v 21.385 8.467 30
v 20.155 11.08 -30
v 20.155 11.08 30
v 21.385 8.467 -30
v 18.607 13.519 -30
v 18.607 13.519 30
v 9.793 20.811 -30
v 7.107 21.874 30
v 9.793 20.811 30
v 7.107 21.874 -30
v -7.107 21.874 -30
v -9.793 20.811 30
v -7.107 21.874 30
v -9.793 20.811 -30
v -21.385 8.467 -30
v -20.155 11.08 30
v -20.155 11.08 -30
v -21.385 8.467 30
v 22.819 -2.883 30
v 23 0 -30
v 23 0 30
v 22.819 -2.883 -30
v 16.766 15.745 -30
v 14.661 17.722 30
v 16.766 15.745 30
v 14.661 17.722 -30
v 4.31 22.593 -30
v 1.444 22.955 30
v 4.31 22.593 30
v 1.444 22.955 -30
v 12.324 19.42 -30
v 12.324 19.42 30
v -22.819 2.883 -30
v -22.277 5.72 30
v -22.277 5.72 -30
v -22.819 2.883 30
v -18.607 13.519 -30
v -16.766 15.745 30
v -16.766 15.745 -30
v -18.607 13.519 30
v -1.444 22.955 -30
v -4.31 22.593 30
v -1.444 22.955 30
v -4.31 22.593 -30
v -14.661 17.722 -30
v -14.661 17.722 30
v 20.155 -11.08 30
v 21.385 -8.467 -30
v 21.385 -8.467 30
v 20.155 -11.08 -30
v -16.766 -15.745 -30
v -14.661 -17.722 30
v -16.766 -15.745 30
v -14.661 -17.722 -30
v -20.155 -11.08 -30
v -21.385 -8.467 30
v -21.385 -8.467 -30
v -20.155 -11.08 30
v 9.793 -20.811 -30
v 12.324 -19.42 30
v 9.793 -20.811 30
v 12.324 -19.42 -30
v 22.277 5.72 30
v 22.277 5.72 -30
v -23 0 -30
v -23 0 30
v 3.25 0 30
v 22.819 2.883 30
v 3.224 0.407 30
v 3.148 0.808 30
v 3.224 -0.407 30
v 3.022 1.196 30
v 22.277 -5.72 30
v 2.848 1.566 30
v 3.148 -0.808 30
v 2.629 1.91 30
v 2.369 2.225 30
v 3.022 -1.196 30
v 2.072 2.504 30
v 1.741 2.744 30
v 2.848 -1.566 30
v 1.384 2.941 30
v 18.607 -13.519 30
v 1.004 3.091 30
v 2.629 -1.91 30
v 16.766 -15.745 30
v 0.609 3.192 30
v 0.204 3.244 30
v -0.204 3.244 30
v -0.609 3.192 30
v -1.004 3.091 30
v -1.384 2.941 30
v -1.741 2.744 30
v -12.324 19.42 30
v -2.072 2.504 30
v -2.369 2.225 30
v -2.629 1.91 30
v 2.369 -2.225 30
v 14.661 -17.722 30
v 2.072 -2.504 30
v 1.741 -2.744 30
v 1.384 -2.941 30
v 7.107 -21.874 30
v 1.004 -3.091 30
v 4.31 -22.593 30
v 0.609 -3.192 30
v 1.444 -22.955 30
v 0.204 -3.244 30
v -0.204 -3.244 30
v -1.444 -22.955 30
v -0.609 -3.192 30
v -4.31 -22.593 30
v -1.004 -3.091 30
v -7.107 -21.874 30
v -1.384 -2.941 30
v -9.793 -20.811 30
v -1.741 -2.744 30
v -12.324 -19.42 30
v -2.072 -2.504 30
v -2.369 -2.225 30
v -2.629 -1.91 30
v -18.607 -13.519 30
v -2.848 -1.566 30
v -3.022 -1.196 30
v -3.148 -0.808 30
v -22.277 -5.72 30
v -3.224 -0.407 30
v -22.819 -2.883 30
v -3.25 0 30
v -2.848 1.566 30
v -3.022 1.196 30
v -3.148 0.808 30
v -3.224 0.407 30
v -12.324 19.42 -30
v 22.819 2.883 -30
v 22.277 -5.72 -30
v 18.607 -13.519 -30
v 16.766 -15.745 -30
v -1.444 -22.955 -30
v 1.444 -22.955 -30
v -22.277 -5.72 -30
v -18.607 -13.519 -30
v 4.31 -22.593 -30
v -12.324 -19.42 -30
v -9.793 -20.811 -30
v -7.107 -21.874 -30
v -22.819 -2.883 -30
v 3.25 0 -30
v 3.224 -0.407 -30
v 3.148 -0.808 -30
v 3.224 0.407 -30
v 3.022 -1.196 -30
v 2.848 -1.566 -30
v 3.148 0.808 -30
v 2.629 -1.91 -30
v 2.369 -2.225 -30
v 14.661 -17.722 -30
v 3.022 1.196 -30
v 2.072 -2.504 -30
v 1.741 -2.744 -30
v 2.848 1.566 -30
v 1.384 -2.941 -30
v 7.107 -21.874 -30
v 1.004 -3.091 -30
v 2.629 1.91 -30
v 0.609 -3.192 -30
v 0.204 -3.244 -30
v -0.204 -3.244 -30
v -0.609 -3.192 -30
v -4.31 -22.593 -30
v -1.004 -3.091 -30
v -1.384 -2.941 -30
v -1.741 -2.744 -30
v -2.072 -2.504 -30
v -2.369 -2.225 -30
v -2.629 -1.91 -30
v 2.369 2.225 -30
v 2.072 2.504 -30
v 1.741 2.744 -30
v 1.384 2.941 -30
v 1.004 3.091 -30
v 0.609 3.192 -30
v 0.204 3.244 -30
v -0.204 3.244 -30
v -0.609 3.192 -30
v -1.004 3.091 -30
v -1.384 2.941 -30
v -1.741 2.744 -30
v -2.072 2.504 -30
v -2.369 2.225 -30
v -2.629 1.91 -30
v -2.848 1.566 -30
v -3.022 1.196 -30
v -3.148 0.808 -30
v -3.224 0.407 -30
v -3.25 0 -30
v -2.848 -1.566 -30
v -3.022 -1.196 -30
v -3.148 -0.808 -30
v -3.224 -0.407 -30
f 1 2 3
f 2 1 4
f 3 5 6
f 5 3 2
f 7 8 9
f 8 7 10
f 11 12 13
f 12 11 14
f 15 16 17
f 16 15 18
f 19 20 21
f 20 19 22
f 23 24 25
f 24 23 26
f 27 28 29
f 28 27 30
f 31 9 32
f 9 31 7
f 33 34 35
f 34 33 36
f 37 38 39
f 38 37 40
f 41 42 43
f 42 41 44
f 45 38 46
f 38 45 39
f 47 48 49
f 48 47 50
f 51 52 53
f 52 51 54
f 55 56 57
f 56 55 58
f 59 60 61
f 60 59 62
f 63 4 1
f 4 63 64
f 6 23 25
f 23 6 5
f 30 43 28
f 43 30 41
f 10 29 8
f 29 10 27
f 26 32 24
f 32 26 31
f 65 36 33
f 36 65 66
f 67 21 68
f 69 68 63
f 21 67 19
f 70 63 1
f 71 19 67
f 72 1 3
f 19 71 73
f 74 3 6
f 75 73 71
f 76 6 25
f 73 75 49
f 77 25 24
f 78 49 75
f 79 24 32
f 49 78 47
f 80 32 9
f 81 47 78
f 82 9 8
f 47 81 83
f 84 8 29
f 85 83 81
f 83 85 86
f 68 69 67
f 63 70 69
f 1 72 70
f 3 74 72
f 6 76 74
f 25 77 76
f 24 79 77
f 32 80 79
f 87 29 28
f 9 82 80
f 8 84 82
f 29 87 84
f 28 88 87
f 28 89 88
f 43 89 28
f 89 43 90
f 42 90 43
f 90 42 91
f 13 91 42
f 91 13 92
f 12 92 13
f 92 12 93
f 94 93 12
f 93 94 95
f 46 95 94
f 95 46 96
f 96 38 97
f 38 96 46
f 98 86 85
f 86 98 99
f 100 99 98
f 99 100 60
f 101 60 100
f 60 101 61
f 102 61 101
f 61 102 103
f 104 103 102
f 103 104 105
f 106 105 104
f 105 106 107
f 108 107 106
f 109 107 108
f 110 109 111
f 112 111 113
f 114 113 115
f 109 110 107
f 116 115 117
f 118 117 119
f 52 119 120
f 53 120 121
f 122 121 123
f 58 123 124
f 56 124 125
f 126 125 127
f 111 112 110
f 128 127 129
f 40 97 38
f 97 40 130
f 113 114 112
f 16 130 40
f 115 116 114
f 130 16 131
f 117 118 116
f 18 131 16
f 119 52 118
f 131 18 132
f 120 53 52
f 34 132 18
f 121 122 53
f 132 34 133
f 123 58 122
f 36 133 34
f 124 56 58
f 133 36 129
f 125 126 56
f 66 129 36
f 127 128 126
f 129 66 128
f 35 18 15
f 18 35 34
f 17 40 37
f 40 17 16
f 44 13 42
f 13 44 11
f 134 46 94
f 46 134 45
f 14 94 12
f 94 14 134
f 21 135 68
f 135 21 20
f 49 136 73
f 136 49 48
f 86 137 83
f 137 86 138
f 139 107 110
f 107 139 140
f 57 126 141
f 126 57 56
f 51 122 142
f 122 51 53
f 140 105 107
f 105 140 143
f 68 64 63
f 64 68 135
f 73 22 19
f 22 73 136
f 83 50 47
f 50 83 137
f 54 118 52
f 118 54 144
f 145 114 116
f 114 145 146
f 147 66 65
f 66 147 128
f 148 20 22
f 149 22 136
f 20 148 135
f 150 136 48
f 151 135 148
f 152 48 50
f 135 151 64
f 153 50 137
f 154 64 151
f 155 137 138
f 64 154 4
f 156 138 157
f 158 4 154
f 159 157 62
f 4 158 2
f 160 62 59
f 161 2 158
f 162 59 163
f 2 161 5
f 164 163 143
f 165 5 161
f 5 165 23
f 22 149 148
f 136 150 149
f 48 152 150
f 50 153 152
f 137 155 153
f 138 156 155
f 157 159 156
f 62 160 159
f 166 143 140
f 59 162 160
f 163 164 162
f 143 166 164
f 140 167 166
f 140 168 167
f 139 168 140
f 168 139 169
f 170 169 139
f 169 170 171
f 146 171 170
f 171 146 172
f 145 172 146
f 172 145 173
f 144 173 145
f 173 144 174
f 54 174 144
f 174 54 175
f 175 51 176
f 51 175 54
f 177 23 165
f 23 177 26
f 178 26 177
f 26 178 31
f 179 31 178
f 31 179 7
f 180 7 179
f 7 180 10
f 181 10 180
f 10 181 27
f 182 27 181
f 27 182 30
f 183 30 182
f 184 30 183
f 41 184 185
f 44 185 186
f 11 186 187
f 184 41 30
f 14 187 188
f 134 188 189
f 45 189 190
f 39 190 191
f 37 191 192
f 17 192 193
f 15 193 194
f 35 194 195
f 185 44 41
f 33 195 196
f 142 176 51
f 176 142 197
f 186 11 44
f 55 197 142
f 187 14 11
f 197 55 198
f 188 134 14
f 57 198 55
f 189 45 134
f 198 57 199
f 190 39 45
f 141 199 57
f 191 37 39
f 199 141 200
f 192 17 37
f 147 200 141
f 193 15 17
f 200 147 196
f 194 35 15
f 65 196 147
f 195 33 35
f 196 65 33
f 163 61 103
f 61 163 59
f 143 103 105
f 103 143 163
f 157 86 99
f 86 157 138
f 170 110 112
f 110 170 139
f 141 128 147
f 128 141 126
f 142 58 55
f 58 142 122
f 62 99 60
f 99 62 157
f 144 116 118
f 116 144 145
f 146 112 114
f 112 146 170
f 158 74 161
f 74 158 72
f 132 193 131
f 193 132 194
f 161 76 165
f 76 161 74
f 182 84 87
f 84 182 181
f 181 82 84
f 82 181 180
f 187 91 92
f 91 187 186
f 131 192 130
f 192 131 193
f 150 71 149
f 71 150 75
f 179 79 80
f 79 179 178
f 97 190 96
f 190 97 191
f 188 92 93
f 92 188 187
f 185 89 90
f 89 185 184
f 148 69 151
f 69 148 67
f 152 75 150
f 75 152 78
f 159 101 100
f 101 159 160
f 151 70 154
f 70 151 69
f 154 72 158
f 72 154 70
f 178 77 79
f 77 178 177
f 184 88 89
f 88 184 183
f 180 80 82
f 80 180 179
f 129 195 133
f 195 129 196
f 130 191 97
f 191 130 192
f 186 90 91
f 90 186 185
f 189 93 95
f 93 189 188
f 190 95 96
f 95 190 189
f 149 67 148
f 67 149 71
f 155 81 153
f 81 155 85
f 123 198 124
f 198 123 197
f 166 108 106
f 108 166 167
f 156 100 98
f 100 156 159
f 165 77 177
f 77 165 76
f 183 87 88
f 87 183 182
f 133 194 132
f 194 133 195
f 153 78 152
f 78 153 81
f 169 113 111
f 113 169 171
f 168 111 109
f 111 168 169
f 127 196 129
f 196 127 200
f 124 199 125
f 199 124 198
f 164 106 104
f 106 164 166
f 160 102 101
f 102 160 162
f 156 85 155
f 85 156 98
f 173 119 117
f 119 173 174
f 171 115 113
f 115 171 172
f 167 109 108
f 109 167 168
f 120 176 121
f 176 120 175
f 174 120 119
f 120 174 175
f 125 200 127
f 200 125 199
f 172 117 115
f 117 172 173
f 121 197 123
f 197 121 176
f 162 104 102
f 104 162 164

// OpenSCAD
$fn = 50;


difference() {
	union() {
		translate(v = [0, 0, -30.0000000000]) {
			cylinder(h = 60, r = 23.0000000000);
		}
	}
	union() {
		translate(v = [0, 0, -100.0000000000]) {
			cylinder(h = 200, r = 3.2500000000);
		}
	}
}
